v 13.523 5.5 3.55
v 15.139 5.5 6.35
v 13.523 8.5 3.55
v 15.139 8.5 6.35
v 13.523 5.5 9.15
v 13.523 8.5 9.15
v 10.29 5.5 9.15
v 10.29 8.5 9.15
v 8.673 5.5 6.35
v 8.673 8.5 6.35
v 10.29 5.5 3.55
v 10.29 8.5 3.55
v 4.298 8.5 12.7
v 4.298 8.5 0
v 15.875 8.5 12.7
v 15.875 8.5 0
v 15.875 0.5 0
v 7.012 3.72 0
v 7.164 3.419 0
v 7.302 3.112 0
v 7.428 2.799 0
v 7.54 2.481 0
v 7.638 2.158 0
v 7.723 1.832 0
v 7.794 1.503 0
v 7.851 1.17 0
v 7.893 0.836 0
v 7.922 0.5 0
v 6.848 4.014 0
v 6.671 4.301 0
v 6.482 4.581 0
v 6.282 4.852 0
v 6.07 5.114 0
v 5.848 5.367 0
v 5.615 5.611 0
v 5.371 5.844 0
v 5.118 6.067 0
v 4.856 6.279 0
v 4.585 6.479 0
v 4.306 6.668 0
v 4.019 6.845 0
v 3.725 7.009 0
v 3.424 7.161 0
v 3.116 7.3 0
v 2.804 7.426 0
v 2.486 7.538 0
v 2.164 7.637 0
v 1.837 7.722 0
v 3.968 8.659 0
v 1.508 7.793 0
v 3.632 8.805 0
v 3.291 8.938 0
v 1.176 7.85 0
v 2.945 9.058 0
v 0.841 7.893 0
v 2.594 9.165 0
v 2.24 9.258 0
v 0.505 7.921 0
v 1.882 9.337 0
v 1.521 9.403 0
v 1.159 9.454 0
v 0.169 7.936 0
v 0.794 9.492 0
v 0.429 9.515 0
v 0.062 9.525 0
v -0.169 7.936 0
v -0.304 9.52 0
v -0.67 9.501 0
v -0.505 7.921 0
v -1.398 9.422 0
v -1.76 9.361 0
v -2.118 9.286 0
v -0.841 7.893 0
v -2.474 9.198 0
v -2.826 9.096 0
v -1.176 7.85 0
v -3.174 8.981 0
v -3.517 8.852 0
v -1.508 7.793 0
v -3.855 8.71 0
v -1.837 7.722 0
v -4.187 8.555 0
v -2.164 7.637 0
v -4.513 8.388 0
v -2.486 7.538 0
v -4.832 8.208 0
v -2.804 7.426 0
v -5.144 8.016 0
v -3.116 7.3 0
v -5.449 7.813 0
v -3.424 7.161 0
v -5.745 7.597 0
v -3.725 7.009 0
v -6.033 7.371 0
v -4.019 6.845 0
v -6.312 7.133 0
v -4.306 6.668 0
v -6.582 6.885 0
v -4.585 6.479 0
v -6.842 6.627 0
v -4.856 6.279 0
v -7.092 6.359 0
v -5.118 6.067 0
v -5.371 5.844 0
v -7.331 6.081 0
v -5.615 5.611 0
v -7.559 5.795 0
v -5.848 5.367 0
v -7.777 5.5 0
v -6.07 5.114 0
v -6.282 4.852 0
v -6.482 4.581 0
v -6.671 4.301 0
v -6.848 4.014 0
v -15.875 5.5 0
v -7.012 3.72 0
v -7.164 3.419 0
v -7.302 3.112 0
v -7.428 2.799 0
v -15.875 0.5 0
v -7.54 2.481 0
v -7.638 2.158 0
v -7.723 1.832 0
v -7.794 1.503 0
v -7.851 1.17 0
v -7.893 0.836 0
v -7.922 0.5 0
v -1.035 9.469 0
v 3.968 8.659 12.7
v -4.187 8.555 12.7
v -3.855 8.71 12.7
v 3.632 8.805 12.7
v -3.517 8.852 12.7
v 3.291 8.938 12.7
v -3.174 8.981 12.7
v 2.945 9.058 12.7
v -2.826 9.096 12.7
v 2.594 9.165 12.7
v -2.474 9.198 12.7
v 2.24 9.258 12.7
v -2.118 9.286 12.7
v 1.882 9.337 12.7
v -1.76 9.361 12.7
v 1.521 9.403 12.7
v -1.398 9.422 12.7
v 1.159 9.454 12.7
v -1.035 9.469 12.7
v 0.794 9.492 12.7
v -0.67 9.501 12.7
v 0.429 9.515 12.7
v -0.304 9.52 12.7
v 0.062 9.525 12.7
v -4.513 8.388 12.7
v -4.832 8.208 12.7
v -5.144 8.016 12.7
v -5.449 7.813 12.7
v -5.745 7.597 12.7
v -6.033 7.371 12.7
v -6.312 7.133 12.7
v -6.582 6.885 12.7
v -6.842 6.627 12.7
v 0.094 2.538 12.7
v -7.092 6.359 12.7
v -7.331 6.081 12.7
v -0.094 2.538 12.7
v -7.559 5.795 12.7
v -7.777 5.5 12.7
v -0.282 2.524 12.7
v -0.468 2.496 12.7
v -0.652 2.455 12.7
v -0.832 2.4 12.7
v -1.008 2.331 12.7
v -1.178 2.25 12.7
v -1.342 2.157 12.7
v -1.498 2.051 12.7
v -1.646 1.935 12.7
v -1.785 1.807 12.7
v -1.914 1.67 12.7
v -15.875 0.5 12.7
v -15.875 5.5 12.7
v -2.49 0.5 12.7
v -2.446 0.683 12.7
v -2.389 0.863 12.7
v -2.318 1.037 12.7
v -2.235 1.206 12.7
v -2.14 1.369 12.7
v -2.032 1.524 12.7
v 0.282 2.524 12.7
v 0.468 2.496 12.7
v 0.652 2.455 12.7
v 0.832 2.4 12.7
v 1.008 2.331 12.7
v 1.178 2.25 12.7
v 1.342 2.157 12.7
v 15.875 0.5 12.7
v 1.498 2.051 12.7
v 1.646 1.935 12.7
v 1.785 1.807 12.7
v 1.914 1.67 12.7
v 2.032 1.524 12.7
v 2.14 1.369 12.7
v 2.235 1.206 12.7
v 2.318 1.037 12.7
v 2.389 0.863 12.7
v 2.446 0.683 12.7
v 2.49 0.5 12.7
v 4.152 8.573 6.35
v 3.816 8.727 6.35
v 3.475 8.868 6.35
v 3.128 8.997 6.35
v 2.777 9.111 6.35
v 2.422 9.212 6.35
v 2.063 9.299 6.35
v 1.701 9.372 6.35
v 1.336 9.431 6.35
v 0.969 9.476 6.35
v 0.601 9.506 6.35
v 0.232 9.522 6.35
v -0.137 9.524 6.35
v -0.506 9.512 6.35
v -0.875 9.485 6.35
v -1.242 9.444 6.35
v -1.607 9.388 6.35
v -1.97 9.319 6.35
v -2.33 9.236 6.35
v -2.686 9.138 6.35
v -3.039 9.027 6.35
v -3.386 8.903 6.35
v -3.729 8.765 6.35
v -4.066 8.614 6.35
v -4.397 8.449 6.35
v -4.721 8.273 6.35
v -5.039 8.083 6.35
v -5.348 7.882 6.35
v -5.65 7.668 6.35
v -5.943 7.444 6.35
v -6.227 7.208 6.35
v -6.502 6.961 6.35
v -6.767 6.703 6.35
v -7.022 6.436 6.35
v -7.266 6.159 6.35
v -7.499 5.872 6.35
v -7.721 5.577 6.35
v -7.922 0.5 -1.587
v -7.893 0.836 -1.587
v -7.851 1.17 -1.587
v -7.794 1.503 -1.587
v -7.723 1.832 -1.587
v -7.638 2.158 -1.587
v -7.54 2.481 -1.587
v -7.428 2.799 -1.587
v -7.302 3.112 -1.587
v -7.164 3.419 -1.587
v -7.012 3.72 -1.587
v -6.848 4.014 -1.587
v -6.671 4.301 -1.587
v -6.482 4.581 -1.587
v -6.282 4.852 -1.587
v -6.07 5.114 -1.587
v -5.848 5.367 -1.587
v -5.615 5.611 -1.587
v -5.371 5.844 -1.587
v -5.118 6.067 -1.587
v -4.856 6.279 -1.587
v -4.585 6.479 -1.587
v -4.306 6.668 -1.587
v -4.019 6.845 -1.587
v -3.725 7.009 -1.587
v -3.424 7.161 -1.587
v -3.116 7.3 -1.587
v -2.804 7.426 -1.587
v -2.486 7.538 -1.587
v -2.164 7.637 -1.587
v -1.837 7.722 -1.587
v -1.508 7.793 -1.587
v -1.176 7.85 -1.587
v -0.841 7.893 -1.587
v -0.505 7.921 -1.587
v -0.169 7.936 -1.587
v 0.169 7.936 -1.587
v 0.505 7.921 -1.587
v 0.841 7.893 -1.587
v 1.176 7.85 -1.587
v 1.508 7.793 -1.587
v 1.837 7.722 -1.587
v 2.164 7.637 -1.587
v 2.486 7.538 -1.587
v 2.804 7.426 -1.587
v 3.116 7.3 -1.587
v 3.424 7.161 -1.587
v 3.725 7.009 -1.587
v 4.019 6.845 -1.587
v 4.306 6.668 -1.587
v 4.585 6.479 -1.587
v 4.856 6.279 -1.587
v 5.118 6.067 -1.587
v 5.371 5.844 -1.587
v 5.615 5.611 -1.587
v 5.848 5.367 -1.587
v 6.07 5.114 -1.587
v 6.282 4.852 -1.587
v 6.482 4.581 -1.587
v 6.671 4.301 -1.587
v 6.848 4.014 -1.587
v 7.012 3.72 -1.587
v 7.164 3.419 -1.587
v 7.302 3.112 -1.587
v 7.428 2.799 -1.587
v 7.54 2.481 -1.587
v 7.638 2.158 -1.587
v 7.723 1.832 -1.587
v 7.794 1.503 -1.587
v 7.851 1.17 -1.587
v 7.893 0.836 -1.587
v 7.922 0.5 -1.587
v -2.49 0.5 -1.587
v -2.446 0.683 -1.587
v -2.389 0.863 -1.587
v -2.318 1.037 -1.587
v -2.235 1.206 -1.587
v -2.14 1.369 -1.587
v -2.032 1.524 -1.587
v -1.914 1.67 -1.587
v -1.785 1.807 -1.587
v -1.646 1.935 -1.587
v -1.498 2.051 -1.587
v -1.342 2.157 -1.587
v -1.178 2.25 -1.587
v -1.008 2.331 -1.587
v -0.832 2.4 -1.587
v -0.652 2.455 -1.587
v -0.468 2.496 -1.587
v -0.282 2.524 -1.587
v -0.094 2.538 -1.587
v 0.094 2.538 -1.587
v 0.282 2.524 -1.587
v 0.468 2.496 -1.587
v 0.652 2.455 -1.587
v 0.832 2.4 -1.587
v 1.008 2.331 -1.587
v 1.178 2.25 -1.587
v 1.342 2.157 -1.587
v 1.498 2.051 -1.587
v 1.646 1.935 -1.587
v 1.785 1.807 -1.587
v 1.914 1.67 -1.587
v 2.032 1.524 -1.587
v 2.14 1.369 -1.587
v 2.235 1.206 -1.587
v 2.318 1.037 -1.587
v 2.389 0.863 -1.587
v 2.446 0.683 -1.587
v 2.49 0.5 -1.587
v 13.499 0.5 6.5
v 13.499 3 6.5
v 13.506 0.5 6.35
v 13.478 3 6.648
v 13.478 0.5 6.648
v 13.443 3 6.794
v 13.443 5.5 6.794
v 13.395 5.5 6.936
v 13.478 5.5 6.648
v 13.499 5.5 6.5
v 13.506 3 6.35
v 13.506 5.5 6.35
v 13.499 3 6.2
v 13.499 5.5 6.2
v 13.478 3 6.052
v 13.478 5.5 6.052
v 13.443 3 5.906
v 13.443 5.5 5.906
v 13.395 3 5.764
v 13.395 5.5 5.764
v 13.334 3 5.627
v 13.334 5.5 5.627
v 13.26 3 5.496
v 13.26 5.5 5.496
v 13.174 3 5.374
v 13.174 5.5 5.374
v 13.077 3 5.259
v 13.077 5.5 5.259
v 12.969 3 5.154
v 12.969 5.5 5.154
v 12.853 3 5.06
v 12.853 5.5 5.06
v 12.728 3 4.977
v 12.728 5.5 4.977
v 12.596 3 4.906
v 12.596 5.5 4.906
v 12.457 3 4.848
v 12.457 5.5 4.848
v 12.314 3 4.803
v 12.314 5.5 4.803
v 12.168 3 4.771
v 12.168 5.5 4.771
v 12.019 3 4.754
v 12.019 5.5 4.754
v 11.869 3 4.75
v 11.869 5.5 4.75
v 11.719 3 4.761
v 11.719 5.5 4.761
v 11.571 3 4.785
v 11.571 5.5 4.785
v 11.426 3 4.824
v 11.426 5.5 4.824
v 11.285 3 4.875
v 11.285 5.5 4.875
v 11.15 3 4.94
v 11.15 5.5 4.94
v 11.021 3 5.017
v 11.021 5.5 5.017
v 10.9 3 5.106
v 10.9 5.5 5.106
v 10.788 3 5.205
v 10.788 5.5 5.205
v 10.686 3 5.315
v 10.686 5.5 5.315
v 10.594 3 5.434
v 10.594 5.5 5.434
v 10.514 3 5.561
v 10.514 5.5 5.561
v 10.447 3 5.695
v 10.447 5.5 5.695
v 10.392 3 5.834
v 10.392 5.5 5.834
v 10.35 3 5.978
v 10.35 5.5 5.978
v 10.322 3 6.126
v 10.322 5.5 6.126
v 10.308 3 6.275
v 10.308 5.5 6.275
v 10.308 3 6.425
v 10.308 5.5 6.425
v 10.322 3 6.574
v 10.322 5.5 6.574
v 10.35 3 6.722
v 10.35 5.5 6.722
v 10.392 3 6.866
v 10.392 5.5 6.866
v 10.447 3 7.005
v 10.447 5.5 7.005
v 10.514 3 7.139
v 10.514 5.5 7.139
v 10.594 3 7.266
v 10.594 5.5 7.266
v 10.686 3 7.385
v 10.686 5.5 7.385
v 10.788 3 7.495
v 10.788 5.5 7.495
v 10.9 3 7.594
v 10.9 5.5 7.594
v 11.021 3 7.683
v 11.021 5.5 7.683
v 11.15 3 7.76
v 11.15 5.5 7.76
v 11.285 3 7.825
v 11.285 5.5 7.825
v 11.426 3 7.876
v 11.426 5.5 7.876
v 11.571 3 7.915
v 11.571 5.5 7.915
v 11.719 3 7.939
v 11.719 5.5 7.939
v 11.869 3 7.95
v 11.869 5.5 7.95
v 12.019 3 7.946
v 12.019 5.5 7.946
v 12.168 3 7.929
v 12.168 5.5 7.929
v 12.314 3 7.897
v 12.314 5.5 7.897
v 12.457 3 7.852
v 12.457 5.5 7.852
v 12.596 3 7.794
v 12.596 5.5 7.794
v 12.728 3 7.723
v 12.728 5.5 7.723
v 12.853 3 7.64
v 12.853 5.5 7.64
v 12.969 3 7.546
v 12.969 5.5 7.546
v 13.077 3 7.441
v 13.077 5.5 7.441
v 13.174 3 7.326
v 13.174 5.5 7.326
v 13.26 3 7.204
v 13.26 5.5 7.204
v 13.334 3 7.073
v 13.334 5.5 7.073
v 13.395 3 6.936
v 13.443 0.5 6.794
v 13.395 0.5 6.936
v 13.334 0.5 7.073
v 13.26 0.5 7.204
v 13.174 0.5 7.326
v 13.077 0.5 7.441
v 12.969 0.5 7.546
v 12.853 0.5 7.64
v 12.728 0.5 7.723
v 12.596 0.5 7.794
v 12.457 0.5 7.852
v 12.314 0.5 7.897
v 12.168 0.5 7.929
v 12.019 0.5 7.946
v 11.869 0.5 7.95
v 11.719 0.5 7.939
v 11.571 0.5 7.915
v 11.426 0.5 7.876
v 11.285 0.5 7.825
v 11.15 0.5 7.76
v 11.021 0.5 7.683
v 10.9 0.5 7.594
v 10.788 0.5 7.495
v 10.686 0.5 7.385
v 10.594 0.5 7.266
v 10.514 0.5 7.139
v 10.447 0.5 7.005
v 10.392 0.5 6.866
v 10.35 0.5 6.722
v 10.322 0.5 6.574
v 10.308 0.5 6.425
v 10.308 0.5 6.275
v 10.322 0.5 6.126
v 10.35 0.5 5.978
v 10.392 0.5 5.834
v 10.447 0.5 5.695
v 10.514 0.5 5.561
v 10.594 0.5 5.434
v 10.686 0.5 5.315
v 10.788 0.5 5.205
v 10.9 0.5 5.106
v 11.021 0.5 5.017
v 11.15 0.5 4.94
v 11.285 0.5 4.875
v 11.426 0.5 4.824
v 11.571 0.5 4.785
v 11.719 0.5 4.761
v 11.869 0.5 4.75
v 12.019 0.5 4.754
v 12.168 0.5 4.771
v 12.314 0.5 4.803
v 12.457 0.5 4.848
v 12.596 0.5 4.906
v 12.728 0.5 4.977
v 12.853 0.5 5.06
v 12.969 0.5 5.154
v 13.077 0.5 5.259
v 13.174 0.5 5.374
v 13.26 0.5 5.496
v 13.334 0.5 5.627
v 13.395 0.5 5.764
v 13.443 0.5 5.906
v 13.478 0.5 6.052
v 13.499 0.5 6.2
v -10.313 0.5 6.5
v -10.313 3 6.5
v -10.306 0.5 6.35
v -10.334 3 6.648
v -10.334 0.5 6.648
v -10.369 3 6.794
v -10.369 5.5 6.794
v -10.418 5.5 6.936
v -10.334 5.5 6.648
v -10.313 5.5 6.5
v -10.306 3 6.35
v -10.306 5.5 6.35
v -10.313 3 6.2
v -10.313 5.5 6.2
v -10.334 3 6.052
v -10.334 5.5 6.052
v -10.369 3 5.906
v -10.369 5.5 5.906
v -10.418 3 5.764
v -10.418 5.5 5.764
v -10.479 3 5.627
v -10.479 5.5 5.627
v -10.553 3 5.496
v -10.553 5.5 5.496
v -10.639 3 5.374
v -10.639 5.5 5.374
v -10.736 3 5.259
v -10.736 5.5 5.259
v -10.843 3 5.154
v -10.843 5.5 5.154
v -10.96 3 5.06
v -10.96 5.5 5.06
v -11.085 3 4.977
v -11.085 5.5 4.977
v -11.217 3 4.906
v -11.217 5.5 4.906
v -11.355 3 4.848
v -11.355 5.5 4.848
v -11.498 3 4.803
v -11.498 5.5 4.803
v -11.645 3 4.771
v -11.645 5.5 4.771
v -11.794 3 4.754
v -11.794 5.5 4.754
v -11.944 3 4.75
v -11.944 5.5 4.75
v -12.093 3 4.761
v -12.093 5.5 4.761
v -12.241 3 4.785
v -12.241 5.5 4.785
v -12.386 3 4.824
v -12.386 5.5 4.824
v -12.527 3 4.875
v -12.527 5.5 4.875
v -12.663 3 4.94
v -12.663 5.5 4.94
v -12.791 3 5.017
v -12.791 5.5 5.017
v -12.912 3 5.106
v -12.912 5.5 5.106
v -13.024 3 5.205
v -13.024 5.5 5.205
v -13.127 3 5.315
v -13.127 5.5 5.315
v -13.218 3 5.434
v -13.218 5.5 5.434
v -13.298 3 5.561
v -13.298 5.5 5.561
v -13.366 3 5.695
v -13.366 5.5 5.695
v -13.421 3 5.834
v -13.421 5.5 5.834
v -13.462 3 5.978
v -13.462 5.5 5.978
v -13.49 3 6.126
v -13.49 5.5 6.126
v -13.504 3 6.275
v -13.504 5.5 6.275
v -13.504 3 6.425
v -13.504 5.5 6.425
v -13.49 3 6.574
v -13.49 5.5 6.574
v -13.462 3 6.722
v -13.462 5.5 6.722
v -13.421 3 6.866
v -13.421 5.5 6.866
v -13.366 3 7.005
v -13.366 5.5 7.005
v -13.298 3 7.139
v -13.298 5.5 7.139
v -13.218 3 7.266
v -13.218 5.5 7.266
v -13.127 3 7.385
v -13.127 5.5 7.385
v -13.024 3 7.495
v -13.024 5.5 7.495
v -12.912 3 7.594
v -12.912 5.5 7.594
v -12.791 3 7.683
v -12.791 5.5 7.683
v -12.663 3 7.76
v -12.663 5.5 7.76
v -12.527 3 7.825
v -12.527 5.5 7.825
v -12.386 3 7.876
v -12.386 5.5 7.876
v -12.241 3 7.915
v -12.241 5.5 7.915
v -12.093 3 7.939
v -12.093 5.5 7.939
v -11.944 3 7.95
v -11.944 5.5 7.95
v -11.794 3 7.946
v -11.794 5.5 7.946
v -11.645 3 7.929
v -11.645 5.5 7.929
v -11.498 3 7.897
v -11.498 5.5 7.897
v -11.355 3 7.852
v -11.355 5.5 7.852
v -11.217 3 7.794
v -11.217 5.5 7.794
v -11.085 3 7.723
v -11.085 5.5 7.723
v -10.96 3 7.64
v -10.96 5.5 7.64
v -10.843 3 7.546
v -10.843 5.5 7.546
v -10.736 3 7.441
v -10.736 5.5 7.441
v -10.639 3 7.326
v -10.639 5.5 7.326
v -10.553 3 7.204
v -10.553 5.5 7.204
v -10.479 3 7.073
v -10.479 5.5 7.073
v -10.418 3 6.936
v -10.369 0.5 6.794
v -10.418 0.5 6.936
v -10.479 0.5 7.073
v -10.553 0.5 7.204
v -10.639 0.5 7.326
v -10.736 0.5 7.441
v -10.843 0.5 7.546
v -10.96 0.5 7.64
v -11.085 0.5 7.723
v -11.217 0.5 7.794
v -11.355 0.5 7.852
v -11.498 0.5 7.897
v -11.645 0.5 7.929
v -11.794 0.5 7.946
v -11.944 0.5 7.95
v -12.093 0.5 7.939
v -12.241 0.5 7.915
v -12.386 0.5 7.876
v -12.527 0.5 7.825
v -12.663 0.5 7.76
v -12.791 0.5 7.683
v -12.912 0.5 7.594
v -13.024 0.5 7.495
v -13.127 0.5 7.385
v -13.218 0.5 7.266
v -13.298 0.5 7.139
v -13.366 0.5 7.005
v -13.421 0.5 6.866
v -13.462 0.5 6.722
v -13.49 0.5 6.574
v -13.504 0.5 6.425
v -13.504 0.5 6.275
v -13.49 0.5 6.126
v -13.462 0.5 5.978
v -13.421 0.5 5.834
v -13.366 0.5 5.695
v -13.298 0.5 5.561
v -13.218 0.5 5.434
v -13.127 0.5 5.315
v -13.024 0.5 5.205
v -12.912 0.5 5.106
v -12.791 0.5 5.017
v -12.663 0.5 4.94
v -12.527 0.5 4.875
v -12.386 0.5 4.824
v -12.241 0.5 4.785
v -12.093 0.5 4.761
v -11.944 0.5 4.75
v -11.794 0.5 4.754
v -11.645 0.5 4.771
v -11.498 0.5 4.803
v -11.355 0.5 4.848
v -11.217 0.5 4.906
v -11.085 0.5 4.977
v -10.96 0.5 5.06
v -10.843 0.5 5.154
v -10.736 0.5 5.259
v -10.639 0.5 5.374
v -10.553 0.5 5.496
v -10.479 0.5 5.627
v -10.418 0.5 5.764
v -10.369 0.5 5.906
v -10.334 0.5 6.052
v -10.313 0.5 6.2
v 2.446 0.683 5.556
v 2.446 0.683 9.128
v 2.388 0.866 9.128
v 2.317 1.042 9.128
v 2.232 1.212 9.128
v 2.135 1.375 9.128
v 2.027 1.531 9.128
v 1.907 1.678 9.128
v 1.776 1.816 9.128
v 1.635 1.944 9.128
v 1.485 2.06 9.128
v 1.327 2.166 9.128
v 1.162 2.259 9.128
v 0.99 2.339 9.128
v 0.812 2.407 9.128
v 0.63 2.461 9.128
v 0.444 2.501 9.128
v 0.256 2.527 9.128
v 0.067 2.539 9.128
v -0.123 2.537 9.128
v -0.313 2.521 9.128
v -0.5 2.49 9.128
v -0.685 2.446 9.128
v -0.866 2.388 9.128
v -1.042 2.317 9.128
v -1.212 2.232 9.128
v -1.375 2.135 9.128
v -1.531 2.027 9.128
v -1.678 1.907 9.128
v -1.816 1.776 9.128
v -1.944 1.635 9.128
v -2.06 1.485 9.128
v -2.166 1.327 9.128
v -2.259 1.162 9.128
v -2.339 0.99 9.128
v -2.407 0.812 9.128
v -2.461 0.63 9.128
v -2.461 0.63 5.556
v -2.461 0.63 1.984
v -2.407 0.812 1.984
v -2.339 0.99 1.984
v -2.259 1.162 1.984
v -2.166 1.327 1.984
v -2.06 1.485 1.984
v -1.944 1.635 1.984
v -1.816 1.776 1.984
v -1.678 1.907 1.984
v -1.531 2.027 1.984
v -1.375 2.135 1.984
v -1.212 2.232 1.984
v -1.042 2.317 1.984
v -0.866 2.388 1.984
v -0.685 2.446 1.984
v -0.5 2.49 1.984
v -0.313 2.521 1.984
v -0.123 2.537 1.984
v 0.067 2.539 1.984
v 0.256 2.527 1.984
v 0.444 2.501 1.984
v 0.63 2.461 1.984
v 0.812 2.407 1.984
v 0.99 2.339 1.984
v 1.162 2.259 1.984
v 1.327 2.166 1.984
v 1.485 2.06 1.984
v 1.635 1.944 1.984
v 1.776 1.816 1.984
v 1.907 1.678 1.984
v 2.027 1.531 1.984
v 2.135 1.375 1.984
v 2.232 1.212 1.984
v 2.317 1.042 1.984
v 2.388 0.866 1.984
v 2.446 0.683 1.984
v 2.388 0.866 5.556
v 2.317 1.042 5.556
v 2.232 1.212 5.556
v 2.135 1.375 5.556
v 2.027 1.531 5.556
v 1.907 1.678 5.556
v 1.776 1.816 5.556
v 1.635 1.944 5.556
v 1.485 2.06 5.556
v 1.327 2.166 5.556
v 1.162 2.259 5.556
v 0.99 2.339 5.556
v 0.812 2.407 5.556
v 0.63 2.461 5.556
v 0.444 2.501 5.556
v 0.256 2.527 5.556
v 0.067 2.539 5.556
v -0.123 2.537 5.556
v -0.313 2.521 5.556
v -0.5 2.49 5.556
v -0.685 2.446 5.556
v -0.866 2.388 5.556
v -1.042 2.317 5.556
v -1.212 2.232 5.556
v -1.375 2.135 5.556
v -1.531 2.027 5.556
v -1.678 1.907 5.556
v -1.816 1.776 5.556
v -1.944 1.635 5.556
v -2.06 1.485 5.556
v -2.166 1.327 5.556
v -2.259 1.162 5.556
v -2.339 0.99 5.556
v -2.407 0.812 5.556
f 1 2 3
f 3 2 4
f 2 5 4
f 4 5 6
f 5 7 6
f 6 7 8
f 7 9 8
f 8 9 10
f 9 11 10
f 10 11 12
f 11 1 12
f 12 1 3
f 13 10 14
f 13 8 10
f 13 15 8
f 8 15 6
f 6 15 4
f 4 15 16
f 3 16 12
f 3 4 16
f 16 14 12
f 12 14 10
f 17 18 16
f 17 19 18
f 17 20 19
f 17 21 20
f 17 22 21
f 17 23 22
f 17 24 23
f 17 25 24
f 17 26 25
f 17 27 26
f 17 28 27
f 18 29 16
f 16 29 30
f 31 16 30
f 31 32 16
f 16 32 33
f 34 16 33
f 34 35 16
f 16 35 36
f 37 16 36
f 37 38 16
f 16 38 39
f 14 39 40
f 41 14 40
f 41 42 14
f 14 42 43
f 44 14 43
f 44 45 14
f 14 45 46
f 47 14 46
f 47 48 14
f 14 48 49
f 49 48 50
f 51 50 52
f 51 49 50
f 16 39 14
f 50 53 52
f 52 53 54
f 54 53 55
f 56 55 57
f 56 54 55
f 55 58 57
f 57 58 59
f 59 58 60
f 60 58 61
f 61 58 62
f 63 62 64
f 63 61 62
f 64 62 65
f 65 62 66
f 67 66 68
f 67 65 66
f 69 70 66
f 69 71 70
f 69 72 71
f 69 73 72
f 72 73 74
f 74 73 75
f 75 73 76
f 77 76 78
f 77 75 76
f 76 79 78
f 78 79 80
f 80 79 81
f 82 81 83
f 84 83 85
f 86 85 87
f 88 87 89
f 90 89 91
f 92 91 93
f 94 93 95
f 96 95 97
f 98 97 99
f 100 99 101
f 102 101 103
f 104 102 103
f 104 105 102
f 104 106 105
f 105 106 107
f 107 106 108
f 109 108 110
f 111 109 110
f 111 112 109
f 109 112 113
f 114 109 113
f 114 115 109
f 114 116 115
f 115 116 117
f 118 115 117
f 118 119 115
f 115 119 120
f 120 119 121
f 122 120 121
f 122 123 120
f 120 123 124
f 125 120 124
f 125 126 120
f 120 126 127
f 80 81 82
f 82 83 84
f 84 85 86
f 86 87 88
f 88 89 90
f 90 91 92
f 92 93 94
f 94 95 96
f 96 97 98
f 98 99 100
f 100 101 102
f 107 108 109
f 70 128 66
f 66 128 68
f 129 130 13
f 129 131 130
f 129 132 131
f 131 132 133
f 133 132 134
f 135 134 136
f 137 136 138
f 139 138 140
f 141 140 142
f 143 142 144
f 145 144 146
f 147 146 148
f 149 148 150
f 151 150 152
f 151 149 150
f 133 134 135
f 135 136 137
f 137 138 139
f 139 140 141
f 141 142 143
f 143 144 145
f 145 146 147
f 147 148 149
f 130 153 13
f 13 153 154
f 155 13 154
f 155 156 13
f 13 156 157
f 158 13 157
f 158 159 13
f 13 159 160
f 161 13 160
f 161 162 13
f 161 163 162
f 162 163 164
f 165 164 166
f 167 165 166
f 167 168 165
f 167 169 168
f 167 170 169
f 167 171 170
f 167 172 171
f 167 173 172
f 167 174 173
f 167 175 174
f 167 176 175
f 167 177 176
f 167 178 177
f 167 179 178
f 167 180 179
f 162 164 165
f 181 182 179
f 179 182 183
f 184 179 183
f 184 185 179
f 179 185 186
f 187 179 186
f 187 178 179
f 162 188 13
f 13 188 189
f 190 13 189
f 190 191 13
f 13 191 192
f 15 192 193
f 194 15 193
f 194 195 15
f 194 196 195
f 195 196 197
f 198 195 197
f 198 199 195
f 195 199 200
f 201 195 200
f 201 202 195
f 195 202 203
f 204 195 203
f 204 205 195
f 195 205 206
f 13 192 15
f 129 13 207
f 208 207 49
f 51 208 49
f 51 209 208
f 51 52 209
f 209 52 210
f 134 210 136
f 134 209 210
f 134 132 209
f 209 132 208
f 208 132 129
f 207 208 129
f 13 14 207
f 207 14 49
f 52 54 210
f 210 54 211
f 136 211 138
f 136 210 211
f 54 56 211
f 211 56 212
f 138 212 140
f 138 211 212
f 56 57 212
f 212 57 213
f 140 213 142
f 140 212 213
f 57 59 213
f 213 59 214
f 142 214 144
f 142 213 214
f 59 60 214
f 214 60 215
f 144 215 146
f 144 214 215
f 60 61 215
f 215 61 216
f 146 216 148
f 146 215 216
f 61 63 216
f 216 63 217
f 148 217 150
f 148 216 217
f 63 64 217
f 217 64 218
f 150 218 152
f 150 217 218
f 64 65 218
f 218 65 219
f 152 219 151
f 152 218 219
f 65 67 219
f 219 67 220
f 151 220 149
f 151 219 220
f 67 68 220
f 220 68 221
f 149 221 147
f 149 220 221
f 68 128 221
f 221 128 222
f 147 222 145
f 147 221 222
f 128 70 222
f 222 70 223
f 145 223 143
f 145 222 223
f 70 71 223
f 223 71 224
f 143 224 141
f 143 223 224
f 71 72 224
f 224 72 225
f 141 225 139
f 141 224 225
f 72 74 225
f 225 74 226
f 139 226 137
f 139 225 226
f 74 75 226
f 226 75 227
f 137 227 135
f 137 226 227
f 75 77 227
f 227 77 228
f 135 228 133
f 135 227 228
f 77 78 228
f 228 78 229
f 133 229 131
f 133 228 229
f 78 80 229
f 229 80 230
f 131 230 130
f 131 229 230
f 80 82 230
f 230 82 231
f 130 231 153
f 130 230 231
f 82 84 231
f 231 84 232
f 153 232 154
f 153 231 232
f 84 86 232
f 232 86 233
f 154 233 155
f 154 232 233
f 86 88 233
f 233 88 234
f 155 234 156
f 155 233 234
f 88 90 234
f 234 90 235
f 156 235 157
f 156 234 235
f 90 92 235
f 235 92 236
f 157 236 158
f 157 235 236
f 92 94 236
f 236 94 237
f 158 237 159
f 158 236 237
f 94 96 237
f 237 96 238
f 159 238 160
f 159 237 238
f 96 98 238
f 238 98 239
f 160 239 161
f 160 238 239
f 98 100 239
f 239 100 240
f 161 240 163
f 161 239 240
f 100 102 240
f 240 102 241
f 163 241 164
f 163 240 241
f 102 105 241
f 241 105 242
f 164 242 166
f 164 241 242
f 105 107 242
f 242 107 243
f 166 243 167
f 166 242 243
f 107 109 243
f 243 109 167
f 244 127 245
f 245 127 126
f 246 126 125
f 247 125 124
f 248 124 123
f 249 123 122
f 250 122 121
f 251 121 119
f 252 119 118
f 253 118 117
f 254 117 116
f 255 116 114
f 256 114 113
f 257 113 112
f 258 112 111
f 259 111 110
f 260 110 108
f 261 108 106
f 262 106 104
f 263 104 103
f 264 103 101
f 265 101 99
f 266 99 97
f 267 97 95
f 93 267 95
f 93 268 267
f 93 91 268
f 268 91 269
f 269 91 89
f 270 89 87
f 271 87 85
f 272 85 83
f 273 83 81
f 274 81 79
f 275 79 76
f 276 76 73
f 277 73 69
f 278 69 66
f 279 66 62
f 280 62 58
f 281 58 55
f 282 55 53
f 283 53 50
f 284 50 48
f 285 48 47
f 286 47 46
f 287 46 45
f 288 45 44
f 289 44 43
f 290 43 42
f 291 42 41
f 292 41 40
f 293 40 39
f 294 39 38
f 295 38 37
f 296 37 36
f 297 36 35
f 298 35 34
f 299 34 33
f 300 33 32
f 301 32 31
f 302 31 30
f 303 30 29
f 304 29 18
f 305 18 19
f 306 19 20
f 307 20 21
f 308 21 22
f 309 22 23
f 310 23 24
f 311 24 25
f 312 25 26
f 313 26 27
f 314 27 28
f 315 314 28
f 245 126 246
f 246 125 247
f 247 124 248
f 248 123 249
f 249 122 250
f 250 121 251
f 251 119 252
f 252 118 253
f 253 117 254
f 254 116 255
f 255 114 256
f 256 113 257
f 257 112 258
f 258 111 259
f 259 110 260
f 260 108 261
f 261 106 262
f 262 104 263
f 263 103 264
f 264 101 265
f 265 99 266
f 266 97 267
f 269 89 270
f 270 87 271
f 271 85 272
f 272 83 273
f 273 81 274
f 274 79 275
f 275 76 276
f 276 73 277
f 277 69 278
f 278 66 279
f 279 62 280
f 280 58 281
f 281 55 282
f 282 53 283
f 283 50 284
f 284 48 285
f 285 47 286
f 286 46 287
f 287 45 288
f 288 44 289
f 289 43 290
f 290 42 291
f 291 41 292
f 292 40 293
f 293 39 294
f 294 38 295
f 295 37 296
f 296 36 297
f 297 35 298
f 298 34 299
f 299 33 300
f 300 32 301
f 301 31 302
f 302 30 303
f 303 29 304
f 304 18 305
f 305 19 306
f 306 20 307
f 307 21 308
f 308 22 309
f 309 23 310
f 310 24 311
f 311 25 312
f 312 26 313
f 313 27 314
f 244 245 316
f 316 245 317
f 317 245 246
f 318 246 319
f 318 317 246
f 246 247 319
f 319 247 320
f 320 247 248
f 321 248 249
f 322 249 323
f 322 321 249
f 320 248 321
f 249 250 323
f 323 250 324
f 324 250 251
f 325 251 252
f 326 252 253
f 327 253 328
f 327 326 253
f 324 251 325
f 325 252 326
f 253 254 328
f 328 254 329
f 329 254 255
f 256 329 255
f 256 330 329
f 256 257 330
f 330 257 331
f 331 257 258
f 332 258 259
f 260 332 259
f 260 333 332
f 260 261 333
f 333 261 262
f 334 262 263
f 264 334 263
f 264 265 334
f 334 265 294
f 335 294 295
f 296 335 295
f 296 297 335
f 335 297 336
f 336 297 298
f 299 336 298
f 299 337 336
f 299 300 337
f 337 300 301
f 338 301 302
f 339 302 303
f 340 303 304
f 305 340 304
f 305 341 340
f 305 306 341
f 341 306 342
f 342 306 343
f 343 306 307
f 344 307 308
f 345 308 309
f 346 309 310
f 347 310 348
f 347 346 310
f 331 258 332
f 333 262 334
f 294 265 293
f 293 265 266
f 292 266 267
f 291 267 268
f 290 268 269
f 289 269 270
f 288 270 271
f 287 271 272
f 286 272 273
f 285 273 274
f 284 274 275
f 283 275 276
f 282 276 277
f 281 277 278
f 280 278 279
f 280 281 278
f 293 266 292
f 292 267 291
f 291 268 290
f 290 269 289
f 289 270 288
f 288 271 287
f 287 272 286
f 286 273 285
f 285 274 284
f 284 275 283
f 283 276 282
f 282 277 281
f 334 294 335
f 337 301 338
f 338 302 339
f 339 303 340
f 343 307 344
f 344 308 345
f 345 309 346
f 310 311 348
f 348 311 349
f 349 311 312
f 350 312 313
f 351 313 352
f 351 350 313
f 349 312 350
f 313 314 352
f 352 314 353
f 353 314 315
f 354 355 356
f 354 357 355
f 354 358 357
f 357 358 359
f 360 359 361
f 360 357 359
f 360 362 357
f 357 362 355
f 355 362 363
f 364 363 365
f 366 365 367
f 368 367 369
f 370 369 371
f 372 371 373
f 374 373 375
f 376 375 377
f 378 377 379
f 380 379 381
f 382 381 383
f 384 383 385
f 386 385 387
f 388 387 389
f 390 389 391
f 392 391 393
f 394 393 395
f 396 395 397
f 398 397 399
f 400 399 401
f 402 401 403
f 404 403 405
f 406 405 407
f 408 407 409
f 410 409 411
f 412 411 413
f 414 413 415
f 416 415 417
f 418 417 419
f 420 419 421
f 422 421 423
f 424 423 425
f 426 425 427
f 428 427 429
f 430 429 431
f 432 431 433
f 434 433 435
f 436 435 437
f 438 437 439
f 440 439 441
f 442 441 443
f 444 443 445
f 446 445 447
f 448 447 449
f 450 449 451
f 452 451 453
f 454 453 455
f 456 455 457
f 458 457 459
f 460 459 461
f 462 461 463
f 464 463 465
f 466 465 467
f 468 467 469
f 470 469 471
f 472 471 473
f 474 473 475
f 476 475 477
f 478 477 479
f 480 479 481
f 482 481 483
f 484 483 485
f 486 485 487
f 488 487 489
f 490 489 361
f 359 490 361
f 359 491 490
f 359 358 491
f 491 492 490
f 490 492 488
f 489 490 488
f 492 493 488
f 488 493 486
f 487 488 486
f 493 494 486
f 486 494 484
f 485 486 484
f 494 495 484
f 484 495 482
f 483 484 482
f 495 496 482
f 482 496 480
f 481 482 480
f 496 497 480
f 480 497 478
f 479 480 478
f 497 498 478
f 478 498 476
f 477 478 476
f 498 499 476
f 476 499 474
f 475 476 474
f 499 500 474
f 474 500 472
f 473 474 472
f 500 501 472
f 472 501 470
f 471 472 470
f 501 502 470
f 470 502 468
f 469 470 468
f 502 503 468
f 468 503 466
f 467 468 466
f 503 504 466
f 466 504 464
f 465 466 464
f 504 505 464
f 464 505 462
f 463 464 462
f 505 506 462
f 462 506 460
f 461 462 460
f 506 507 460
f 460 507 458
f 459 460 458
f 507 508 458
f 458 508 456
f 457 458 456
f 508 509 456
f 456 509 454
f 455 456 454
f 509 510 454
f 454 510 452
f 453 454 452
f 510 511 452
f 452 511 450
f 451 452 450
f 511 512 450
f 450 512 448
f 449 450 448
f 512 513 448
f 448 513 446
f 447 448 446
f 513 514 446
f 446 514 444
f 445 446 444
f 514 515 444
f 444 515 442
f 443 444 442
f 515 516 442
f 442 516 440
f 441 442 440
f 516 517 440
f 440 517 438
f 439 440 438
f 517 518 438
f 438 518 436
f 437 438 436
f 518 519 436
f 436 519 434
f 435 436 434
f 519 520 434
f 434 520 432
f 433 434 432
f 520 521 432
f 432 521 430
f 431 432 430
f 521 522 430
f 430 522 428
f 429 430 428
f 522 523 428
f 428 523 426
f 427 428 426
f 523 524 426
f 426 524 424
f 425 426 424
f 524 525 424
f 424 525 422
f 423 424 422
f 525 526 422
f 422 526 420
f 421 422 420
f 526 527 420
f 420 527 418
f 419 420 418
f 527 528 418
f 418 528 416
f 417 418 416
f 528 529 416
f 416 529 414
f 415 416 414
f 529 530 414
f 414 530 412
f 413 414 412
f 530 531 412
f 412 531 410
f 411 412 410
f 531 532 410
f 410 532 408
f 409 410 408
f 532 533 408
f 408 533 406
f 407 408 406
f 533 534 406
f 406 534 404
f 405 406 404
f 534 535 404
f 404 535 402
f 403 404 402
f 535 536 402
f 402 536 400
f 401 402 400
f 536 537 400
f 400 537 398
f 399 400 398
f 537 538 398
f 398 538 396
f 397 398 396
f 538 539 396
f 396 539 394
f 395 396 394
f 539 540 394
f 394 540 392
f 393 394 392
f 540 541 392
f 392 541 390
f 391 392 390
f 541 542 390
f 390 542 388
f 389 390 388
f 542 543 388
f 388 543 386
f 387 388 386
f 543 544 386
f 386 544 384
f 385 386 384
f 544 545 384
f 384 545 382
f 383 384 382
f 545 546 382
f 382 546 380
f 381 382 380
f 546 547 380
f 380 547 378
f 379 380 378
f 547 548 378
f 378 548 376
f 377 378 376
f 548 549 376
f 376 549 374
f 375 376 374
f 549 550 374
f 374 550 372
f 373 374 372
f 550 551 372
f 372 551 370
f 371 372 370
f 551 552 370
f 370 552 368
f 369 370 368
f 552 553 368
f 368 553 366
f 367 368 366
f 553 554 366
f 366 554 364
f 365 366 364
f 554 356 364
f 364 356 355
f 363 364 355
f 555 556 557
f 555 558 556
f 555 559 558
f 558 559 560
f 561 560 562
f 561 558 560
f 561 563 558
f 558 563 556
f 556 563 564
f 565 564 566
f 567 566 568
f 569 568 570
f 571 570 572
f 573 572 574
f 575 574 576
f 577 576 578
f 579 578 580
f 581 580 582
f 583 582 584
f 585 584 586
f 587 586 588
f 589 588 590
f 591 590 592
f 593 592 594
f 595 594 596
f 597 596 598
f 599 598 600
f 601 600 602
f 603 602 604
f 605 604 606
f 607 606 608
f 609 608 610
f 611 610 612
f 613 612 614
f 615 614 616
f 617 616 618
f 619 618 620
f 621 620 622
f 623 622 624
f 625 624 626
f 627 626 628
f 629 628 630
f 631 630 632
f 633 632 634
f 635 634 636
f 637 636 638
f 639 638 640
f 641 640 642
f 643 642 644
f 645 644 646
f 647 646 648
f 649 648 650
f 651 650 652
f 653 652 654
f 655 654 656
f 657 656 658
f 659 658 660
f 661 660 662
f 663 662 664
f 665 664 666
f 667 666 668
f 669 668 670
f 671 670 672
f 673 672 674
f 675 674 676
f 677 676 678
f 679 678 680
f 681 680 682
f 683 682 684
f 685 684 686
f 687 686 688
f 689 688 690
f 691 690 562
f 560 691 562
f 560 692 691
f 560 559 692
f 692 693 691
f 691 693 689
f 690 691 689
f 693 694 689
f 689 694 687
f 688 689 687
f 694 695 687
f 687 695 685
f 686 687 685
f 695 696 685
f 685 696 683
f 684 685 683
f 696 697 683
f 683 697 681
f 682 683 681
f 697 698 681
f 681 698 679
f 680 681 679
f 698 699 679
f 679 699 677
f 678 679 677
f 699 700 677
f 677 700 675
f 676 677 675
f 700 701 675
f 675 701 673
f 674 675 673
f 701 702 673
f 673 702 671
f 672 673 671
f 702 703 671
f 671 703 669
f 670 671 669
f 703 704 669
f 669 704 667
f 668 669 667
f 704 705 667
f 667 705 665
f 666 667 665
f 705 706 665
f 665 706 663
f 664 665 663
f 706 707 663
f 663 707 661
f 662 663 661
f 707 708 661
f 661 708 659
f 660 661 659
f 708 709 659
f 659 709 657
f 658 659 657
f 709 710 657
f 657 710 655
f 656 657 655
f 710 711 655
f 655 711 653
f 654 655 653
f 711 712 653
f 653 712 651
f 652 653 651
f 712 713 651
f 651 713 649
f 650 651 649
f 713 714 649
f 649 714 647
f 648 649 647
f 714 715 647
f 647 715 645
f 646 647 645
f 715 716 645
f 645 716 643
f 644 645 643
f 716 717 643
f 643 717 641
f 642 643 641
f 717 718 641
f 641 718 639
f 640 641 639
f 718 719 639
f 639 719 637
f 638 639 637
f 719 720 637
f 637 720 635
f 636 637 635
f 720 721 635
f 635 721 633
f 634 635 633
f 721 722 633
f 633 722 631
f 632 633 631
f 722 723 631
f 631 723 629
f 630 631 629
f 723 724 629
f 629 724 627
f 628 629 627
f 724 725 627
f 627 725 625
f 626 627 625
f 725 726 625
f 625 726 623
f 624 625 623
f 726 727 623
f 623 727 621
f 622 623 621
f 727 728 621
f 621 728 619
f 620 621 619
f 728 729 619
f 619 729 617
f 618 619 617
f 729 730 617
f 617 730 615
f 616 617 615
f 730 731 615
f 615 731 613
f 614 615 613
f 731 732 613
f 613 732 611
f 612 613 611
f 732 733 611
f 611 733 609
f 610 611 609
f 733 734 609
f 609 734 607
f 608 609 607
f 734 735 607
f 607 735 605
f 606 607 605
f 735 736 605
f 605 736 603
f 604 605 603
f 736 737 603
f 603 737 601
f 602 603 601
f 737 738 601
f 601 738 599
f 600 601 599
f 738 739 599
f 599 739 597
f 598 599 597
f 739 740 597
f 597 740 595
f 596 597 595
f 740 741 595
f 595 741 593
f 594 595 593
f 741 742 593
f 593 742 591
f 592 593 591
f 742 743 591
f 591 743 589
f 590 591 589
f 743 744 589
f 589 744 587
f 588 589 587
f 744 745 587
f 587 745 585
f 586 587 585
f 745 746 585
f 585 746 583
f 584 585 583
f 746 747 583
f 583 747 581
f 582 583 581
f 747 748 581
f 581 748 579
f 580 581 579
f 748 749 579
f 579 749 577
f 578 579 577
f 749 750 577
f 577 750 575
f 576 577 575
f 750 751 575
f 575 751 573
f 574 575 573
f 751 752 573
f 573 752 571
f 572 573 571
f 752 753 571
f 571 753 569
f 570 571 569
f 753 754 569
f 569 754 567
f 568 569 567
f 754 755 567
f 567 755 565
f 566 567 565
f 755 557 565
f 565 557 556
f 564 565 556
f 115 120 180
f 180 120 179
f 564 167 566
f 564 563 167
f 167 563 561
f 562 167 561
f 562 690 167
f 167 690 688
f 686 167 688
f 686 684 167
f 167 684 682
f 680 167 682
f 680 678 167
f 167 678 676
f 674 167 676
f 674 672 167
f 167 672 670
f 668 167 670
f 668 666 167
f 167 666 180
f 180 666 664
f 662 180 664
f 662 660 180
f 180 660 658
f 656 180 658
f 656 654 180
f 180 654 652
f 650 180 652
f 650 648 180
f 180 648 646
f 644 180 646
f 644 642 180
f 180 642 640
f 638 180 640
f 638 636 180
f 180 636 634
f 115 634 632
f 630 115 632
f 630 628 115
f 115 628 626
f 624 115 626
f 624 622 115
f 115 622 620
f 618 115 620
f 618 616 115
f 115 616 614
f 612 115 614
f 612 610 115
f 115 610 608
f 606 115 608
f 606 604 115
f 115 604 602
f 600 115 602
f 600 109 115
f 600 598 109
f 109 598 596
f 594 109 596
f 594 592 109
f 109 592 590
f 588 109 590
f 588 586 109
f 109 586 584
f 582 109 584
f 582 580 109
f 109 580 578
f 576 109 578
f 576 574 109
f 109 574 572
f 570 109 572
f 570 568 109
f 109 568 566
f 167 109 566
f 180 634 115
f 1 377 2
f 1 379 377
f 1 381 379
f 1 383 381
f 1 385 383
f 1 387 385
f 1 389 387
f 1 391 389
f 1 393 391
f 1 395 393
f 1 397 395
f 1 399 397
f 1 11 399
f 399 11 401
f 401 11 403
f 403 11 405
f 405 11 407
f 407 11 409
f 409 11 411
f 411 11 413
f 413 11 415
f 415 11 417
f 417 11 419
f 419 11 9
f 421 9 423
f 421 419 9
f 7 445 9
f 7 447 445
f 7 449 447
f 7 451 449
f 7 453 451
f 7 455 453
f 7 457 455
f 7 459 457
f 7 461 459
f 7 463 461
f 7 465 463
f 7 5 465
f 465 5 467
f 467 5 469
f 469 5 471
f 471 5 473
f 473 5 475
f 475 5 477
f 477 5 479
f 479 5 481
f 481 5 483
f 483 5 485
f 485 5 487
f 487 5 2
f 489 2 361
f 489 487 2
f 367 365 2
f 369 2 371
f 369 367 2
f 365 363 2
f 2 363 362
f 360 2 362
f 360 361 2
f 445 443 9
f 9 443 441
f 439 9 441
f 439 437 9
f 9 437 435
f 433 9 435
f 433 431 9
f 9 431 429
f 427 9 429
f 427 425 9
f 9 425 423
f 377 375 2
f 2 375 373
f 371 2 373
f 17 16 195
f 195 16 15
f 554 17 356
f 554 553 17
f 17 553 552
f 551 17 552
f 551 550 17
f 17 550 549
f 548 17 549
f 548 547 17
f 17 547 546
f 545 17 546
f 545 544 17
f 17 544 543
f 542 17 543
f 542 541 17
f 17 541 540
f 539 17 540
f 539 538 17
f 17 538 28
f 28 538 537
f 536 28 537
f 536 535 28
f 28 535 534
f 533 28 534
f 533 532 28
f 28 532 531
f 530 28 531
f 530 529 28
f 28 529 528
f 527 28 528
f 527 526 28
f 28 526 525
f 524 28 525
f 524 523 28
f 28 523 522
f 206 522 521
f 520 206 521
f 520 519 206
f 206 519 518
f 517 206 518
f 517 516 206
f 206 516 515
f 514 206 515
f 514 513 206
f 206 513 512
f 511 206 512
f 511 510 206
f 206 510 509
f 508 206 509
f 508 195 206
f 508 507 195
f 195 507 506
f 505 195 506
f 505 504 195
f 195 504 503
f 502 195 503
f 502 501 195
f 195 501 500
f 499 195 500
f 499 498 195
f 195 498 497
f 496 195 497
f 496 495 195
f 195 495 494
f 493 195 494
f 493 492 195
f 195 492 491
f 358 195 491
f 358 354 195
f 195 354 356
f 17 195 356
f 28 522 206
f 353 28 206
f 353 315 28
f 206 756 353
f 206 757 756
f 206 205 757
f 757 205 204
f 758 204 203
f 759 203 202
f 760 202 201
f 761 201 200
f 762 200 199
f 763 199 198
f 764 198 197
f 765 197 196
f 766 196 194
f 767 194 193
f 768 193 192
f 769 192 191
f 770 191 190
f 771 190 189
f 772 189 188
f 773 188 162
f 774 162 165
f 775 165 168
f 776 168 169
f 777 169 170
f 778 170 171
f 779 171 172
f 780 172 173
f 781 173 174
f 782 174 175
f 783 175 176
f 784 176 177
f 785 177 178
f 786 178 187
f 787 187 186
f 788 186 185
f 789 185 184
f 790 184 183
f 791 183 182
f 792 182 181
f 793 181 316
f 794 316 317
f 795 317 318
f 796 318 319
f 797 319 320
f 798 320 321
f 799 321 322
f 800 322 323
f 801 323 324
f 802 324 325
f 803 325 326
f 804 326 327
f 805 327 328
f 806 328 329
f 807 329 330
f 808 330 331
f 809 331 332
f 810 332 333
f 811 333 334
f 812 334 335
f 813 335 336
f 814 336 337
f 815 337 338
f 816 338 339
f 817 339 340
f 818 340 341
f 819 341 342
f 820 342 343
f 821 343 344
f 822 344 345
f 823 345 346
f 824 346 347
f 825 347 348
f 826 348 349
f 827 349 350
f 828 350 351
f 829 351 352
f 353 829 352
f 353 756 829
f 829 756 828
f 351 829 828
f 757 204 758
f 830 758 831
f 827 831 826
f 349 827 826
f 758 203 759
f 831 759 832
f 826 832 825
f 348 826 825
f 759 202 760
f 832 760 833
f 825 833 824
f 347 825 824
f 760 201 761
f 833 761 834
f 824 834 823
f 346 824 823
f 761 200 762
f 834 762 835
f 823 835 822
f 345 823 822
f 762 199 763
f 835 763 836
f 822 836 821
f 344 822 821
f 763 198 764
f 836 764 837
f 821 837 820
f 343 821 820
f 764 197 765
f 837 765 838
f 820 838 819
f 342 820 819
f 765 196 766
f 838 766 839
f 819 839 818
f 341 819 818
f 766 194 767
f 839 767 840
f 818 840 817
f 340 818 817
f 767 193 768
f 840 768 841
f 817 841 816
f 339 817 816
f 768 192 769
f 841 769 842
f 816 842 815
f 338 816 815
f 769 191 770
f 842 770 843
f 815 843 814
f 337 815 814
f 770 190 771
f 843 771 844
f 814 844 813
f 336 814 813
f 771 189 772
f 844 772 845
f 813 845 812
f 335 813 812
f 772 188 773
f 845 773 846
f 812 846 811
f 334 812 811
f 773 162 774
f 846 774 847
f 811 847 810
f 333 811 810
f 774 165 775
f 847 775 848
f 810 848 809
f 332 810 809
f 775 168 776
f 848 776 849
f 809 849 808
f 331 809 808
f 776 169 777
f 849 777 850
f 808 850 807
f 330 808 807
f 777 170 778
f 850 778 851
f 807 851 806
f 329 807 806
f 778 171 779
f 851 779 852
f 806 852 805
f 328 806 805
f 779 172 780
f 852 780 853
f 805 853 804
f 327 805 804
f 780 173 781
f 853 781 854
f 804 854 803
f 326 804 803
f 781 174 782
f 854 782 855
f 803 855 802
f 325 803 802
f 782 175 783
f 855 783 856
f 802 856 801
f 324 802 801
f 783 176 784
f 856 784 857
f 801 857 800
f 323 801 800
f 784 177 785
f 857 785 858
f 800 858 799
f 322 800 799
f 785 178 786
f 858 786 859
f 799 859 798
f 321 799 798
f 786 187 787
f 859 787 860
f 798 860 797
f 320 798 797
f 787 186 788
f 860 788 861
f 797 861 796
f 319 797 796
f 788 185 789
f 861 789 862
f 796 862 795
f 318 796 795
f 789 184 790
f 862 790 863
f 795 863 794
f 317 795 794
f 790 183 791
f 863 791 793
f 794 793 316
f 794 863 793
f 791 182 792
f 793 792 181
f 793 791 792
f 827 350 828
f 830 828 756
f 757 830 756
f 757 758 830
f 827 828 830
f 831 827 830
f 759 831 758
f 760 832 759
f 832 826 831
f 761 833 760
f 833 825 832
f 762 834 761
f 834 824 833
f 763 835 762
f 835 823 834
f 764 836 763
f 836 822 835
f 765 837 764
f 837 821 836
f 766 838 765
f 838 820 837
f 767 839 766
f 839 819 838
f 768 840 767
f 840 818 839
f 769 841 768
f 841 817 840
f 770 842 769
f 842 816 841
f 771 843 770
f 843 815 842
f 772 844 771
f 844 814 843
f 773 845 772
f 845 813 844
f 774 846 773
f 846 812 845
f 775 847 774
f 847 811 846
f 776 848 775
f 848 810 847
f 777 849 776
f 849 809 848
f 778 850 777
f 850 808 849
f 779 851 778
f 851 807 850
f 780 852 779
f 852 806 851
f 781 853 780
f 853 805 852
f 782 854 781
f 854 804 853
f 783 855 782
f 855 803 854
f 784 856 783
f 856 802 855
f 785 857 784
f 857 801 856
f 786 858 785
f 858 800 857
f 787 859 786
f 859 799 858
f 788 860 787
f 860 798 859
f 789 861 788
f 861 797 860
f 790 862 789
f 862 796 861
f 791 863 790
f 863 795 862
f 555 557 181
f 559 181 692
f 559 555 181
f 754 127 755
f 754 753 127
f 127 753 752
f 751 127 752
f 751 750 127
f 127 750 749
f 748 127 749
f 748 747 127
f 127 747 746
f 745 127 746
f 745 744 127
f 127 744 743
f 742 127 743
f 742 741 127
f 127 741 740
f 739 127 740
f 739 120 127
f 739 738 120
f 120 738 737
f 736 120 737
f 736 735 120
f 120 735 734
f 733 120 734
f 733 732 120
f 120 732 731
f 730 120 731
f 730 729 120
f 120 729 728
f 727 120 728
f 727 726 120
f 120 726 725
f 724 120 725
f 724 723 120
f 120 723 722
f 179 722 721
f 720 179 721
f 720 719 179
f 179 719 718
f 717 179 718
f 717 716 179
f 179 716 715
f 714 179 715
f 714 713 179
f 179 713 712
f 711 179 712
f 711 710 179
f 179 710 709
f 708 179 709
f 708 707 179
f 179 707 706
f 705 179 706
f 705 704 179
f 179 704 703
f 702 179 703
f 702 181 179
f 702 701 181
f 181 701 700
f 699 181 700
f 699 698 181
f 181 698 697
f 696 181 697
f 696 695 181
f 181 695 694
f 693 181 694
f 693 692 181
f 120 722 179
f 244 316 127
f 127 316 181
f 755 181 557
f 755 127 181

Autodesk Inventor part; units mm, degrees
ref_plane "YZ Plane" through (0, 0, 0) normal (1, 0, 0) x (0, 1, 0)
ref_plane "XZ Plane" through (0, 0, 0) normal (0, 1, 0) x (-1, 0, 0)
ref_plane "XY Plane" through (0, 0, 0) normal (0, 0, 1) x (1, 0, 0)
sketch "Sketch1" plane through (0, 0, 0) normal (0, 0, 1) x (1, 0, 0)
  circle A0 centre (0, 0) radius 9.525 construction
  circle A1 centre (0, 0) radius 2.54 construction
  line L0 (-15.875, 0.5) -> (-2.4903, 0.5)
  line L1 (2.4903, 0.5) -> (15.875, 0.5)
  line L2 (15.875, 0.5) -> (15.875, 5.5)
  line L3 (15.875, 5.5) -> (7.7766, 5.5)
  line L4 (-15.875, 0.5) -> (-15.875, 5.5)
  line L5 (-15.875, 5.5) -> (-7.7766, 5.5)
  arc A2 (2.4903, 0.5) -> (-2.4903, 0.5) centre (0, 0) ccw
  arc A3 (7.7766, 5.5) -> (-7.7766, 5.5) centre (0, 0) ccw
  dimension "d0" = 5.08
  dimension "d2" = 19.05
  dimension "d3" = 0.5
  dimension "d4" = 5
  dimension "d5" = 15.875
extrude "Extrusion1" add sketch "Sketch1" along normal blind 12.7
sketch "Sketch3" plane through (7.7766, 5.5, 0) normal (0, 1, 0) x (1, 0, 0)
  line L0 (8.0984, 0) -> (8.0984, -12.7) projected
  line L1 (-15.5532, 0) -> (0, 0) projected
  line L2 (-15.5532, 0) -> (-23.6516, 0) projected
  line L3 (-23.6516, 0) -> (-23.6516, -12.7) projected
  line L4 (-15.5532, -12.7) -> (-23.6516, -12.7) projected
  line L5 (-15.5532, 0) -> (-15.5532, -12.7) projected
  circle A0 centre (-19.6829, -6.35) radius 1.6
  circle A1 centre (4.1296, -6.35) radius 1.6
  point P0 (-7.7766, 0)
  point P1 (-23.6516, -6.35)
  point P2 (8.0984, -6.35)
  point P3 (-7.7766, 0)
  dimension "d13" = 3.2
  dimension "d15" = 11.9062
  dimension "d16" = 11.9062
extrude "Extrusion3" cut sketch "Sketch3" against normal through all contours A0 | A1
sketch "Sketch2" plane through (0, 0, 0) normal (0, 0, -1) x (-1, 0, 0)
  line L0 (15.875, 0.5) -> (2.4903, 0.5) projected
  line L1 (-2.4903, 0.5) -> (-15.875, 0.5) projected
  arc A0 (2.4903, 0.5) -> (-2.4903, 0.5) centre (0, 0) ccw projected
  arc A1 (7.9217, 0.5) -> (-7.9217, 0.5) centre (0, 0) ccw
  dimension "d8" = 7.9375
extrude "Extrusion2" add sketch "Sketch2" along normal blind 1.5875
sketch "Sketch6" plane through (7.7766, 5.5, 0) normal (0, 1, 0) x (1, 0, 0)
  circle A0 centre (4.1296, -6.35) radius 1.6 projected
  line L0 (8.0984, 0) -> (0, 0) projected
  line L1 (8.0984, -12.7) -> (0, -12.7) projected
  line L2 (8.0984, 0) -> (8.0984, -12.7) projected
  line L3 (2.5131, -3.55) -> (5.7462, -3.55)
  line L4 (5.7462, -3.55) -> (7.3628, -6.35)
  line L5 (7.3628, -6.35) -> (5.7462, -9.15)
  line L6 (5.7462, -9.15) -> (2.5131, -9.15)
  line L7 (2.5131, -9.15) -> (0.8965, -6.35)
  line L8 (0.8965, -6.35) -> (2.5131, -3.55)
  line L9 (0, 0) -> (-8.0984, 0)
  line L10 (-8.0984, 0) -> (-8.0984, -12.7)
  line L11 (-8.0984, -12.7) -> (0, -12.7)
  line L12 (0, -12.7) -> (0, 0)
  point P0 (-7.7766, 0)
  dimension "d30" = 5.6
extrude "Extrusion5" add sketch "Sketch6" along normal blind 3 contours L2 L1 L12 L0 | L12 L11 L10 L9
equation "\"d16\" = d15"
properties part number "THREAD CLAMP"
